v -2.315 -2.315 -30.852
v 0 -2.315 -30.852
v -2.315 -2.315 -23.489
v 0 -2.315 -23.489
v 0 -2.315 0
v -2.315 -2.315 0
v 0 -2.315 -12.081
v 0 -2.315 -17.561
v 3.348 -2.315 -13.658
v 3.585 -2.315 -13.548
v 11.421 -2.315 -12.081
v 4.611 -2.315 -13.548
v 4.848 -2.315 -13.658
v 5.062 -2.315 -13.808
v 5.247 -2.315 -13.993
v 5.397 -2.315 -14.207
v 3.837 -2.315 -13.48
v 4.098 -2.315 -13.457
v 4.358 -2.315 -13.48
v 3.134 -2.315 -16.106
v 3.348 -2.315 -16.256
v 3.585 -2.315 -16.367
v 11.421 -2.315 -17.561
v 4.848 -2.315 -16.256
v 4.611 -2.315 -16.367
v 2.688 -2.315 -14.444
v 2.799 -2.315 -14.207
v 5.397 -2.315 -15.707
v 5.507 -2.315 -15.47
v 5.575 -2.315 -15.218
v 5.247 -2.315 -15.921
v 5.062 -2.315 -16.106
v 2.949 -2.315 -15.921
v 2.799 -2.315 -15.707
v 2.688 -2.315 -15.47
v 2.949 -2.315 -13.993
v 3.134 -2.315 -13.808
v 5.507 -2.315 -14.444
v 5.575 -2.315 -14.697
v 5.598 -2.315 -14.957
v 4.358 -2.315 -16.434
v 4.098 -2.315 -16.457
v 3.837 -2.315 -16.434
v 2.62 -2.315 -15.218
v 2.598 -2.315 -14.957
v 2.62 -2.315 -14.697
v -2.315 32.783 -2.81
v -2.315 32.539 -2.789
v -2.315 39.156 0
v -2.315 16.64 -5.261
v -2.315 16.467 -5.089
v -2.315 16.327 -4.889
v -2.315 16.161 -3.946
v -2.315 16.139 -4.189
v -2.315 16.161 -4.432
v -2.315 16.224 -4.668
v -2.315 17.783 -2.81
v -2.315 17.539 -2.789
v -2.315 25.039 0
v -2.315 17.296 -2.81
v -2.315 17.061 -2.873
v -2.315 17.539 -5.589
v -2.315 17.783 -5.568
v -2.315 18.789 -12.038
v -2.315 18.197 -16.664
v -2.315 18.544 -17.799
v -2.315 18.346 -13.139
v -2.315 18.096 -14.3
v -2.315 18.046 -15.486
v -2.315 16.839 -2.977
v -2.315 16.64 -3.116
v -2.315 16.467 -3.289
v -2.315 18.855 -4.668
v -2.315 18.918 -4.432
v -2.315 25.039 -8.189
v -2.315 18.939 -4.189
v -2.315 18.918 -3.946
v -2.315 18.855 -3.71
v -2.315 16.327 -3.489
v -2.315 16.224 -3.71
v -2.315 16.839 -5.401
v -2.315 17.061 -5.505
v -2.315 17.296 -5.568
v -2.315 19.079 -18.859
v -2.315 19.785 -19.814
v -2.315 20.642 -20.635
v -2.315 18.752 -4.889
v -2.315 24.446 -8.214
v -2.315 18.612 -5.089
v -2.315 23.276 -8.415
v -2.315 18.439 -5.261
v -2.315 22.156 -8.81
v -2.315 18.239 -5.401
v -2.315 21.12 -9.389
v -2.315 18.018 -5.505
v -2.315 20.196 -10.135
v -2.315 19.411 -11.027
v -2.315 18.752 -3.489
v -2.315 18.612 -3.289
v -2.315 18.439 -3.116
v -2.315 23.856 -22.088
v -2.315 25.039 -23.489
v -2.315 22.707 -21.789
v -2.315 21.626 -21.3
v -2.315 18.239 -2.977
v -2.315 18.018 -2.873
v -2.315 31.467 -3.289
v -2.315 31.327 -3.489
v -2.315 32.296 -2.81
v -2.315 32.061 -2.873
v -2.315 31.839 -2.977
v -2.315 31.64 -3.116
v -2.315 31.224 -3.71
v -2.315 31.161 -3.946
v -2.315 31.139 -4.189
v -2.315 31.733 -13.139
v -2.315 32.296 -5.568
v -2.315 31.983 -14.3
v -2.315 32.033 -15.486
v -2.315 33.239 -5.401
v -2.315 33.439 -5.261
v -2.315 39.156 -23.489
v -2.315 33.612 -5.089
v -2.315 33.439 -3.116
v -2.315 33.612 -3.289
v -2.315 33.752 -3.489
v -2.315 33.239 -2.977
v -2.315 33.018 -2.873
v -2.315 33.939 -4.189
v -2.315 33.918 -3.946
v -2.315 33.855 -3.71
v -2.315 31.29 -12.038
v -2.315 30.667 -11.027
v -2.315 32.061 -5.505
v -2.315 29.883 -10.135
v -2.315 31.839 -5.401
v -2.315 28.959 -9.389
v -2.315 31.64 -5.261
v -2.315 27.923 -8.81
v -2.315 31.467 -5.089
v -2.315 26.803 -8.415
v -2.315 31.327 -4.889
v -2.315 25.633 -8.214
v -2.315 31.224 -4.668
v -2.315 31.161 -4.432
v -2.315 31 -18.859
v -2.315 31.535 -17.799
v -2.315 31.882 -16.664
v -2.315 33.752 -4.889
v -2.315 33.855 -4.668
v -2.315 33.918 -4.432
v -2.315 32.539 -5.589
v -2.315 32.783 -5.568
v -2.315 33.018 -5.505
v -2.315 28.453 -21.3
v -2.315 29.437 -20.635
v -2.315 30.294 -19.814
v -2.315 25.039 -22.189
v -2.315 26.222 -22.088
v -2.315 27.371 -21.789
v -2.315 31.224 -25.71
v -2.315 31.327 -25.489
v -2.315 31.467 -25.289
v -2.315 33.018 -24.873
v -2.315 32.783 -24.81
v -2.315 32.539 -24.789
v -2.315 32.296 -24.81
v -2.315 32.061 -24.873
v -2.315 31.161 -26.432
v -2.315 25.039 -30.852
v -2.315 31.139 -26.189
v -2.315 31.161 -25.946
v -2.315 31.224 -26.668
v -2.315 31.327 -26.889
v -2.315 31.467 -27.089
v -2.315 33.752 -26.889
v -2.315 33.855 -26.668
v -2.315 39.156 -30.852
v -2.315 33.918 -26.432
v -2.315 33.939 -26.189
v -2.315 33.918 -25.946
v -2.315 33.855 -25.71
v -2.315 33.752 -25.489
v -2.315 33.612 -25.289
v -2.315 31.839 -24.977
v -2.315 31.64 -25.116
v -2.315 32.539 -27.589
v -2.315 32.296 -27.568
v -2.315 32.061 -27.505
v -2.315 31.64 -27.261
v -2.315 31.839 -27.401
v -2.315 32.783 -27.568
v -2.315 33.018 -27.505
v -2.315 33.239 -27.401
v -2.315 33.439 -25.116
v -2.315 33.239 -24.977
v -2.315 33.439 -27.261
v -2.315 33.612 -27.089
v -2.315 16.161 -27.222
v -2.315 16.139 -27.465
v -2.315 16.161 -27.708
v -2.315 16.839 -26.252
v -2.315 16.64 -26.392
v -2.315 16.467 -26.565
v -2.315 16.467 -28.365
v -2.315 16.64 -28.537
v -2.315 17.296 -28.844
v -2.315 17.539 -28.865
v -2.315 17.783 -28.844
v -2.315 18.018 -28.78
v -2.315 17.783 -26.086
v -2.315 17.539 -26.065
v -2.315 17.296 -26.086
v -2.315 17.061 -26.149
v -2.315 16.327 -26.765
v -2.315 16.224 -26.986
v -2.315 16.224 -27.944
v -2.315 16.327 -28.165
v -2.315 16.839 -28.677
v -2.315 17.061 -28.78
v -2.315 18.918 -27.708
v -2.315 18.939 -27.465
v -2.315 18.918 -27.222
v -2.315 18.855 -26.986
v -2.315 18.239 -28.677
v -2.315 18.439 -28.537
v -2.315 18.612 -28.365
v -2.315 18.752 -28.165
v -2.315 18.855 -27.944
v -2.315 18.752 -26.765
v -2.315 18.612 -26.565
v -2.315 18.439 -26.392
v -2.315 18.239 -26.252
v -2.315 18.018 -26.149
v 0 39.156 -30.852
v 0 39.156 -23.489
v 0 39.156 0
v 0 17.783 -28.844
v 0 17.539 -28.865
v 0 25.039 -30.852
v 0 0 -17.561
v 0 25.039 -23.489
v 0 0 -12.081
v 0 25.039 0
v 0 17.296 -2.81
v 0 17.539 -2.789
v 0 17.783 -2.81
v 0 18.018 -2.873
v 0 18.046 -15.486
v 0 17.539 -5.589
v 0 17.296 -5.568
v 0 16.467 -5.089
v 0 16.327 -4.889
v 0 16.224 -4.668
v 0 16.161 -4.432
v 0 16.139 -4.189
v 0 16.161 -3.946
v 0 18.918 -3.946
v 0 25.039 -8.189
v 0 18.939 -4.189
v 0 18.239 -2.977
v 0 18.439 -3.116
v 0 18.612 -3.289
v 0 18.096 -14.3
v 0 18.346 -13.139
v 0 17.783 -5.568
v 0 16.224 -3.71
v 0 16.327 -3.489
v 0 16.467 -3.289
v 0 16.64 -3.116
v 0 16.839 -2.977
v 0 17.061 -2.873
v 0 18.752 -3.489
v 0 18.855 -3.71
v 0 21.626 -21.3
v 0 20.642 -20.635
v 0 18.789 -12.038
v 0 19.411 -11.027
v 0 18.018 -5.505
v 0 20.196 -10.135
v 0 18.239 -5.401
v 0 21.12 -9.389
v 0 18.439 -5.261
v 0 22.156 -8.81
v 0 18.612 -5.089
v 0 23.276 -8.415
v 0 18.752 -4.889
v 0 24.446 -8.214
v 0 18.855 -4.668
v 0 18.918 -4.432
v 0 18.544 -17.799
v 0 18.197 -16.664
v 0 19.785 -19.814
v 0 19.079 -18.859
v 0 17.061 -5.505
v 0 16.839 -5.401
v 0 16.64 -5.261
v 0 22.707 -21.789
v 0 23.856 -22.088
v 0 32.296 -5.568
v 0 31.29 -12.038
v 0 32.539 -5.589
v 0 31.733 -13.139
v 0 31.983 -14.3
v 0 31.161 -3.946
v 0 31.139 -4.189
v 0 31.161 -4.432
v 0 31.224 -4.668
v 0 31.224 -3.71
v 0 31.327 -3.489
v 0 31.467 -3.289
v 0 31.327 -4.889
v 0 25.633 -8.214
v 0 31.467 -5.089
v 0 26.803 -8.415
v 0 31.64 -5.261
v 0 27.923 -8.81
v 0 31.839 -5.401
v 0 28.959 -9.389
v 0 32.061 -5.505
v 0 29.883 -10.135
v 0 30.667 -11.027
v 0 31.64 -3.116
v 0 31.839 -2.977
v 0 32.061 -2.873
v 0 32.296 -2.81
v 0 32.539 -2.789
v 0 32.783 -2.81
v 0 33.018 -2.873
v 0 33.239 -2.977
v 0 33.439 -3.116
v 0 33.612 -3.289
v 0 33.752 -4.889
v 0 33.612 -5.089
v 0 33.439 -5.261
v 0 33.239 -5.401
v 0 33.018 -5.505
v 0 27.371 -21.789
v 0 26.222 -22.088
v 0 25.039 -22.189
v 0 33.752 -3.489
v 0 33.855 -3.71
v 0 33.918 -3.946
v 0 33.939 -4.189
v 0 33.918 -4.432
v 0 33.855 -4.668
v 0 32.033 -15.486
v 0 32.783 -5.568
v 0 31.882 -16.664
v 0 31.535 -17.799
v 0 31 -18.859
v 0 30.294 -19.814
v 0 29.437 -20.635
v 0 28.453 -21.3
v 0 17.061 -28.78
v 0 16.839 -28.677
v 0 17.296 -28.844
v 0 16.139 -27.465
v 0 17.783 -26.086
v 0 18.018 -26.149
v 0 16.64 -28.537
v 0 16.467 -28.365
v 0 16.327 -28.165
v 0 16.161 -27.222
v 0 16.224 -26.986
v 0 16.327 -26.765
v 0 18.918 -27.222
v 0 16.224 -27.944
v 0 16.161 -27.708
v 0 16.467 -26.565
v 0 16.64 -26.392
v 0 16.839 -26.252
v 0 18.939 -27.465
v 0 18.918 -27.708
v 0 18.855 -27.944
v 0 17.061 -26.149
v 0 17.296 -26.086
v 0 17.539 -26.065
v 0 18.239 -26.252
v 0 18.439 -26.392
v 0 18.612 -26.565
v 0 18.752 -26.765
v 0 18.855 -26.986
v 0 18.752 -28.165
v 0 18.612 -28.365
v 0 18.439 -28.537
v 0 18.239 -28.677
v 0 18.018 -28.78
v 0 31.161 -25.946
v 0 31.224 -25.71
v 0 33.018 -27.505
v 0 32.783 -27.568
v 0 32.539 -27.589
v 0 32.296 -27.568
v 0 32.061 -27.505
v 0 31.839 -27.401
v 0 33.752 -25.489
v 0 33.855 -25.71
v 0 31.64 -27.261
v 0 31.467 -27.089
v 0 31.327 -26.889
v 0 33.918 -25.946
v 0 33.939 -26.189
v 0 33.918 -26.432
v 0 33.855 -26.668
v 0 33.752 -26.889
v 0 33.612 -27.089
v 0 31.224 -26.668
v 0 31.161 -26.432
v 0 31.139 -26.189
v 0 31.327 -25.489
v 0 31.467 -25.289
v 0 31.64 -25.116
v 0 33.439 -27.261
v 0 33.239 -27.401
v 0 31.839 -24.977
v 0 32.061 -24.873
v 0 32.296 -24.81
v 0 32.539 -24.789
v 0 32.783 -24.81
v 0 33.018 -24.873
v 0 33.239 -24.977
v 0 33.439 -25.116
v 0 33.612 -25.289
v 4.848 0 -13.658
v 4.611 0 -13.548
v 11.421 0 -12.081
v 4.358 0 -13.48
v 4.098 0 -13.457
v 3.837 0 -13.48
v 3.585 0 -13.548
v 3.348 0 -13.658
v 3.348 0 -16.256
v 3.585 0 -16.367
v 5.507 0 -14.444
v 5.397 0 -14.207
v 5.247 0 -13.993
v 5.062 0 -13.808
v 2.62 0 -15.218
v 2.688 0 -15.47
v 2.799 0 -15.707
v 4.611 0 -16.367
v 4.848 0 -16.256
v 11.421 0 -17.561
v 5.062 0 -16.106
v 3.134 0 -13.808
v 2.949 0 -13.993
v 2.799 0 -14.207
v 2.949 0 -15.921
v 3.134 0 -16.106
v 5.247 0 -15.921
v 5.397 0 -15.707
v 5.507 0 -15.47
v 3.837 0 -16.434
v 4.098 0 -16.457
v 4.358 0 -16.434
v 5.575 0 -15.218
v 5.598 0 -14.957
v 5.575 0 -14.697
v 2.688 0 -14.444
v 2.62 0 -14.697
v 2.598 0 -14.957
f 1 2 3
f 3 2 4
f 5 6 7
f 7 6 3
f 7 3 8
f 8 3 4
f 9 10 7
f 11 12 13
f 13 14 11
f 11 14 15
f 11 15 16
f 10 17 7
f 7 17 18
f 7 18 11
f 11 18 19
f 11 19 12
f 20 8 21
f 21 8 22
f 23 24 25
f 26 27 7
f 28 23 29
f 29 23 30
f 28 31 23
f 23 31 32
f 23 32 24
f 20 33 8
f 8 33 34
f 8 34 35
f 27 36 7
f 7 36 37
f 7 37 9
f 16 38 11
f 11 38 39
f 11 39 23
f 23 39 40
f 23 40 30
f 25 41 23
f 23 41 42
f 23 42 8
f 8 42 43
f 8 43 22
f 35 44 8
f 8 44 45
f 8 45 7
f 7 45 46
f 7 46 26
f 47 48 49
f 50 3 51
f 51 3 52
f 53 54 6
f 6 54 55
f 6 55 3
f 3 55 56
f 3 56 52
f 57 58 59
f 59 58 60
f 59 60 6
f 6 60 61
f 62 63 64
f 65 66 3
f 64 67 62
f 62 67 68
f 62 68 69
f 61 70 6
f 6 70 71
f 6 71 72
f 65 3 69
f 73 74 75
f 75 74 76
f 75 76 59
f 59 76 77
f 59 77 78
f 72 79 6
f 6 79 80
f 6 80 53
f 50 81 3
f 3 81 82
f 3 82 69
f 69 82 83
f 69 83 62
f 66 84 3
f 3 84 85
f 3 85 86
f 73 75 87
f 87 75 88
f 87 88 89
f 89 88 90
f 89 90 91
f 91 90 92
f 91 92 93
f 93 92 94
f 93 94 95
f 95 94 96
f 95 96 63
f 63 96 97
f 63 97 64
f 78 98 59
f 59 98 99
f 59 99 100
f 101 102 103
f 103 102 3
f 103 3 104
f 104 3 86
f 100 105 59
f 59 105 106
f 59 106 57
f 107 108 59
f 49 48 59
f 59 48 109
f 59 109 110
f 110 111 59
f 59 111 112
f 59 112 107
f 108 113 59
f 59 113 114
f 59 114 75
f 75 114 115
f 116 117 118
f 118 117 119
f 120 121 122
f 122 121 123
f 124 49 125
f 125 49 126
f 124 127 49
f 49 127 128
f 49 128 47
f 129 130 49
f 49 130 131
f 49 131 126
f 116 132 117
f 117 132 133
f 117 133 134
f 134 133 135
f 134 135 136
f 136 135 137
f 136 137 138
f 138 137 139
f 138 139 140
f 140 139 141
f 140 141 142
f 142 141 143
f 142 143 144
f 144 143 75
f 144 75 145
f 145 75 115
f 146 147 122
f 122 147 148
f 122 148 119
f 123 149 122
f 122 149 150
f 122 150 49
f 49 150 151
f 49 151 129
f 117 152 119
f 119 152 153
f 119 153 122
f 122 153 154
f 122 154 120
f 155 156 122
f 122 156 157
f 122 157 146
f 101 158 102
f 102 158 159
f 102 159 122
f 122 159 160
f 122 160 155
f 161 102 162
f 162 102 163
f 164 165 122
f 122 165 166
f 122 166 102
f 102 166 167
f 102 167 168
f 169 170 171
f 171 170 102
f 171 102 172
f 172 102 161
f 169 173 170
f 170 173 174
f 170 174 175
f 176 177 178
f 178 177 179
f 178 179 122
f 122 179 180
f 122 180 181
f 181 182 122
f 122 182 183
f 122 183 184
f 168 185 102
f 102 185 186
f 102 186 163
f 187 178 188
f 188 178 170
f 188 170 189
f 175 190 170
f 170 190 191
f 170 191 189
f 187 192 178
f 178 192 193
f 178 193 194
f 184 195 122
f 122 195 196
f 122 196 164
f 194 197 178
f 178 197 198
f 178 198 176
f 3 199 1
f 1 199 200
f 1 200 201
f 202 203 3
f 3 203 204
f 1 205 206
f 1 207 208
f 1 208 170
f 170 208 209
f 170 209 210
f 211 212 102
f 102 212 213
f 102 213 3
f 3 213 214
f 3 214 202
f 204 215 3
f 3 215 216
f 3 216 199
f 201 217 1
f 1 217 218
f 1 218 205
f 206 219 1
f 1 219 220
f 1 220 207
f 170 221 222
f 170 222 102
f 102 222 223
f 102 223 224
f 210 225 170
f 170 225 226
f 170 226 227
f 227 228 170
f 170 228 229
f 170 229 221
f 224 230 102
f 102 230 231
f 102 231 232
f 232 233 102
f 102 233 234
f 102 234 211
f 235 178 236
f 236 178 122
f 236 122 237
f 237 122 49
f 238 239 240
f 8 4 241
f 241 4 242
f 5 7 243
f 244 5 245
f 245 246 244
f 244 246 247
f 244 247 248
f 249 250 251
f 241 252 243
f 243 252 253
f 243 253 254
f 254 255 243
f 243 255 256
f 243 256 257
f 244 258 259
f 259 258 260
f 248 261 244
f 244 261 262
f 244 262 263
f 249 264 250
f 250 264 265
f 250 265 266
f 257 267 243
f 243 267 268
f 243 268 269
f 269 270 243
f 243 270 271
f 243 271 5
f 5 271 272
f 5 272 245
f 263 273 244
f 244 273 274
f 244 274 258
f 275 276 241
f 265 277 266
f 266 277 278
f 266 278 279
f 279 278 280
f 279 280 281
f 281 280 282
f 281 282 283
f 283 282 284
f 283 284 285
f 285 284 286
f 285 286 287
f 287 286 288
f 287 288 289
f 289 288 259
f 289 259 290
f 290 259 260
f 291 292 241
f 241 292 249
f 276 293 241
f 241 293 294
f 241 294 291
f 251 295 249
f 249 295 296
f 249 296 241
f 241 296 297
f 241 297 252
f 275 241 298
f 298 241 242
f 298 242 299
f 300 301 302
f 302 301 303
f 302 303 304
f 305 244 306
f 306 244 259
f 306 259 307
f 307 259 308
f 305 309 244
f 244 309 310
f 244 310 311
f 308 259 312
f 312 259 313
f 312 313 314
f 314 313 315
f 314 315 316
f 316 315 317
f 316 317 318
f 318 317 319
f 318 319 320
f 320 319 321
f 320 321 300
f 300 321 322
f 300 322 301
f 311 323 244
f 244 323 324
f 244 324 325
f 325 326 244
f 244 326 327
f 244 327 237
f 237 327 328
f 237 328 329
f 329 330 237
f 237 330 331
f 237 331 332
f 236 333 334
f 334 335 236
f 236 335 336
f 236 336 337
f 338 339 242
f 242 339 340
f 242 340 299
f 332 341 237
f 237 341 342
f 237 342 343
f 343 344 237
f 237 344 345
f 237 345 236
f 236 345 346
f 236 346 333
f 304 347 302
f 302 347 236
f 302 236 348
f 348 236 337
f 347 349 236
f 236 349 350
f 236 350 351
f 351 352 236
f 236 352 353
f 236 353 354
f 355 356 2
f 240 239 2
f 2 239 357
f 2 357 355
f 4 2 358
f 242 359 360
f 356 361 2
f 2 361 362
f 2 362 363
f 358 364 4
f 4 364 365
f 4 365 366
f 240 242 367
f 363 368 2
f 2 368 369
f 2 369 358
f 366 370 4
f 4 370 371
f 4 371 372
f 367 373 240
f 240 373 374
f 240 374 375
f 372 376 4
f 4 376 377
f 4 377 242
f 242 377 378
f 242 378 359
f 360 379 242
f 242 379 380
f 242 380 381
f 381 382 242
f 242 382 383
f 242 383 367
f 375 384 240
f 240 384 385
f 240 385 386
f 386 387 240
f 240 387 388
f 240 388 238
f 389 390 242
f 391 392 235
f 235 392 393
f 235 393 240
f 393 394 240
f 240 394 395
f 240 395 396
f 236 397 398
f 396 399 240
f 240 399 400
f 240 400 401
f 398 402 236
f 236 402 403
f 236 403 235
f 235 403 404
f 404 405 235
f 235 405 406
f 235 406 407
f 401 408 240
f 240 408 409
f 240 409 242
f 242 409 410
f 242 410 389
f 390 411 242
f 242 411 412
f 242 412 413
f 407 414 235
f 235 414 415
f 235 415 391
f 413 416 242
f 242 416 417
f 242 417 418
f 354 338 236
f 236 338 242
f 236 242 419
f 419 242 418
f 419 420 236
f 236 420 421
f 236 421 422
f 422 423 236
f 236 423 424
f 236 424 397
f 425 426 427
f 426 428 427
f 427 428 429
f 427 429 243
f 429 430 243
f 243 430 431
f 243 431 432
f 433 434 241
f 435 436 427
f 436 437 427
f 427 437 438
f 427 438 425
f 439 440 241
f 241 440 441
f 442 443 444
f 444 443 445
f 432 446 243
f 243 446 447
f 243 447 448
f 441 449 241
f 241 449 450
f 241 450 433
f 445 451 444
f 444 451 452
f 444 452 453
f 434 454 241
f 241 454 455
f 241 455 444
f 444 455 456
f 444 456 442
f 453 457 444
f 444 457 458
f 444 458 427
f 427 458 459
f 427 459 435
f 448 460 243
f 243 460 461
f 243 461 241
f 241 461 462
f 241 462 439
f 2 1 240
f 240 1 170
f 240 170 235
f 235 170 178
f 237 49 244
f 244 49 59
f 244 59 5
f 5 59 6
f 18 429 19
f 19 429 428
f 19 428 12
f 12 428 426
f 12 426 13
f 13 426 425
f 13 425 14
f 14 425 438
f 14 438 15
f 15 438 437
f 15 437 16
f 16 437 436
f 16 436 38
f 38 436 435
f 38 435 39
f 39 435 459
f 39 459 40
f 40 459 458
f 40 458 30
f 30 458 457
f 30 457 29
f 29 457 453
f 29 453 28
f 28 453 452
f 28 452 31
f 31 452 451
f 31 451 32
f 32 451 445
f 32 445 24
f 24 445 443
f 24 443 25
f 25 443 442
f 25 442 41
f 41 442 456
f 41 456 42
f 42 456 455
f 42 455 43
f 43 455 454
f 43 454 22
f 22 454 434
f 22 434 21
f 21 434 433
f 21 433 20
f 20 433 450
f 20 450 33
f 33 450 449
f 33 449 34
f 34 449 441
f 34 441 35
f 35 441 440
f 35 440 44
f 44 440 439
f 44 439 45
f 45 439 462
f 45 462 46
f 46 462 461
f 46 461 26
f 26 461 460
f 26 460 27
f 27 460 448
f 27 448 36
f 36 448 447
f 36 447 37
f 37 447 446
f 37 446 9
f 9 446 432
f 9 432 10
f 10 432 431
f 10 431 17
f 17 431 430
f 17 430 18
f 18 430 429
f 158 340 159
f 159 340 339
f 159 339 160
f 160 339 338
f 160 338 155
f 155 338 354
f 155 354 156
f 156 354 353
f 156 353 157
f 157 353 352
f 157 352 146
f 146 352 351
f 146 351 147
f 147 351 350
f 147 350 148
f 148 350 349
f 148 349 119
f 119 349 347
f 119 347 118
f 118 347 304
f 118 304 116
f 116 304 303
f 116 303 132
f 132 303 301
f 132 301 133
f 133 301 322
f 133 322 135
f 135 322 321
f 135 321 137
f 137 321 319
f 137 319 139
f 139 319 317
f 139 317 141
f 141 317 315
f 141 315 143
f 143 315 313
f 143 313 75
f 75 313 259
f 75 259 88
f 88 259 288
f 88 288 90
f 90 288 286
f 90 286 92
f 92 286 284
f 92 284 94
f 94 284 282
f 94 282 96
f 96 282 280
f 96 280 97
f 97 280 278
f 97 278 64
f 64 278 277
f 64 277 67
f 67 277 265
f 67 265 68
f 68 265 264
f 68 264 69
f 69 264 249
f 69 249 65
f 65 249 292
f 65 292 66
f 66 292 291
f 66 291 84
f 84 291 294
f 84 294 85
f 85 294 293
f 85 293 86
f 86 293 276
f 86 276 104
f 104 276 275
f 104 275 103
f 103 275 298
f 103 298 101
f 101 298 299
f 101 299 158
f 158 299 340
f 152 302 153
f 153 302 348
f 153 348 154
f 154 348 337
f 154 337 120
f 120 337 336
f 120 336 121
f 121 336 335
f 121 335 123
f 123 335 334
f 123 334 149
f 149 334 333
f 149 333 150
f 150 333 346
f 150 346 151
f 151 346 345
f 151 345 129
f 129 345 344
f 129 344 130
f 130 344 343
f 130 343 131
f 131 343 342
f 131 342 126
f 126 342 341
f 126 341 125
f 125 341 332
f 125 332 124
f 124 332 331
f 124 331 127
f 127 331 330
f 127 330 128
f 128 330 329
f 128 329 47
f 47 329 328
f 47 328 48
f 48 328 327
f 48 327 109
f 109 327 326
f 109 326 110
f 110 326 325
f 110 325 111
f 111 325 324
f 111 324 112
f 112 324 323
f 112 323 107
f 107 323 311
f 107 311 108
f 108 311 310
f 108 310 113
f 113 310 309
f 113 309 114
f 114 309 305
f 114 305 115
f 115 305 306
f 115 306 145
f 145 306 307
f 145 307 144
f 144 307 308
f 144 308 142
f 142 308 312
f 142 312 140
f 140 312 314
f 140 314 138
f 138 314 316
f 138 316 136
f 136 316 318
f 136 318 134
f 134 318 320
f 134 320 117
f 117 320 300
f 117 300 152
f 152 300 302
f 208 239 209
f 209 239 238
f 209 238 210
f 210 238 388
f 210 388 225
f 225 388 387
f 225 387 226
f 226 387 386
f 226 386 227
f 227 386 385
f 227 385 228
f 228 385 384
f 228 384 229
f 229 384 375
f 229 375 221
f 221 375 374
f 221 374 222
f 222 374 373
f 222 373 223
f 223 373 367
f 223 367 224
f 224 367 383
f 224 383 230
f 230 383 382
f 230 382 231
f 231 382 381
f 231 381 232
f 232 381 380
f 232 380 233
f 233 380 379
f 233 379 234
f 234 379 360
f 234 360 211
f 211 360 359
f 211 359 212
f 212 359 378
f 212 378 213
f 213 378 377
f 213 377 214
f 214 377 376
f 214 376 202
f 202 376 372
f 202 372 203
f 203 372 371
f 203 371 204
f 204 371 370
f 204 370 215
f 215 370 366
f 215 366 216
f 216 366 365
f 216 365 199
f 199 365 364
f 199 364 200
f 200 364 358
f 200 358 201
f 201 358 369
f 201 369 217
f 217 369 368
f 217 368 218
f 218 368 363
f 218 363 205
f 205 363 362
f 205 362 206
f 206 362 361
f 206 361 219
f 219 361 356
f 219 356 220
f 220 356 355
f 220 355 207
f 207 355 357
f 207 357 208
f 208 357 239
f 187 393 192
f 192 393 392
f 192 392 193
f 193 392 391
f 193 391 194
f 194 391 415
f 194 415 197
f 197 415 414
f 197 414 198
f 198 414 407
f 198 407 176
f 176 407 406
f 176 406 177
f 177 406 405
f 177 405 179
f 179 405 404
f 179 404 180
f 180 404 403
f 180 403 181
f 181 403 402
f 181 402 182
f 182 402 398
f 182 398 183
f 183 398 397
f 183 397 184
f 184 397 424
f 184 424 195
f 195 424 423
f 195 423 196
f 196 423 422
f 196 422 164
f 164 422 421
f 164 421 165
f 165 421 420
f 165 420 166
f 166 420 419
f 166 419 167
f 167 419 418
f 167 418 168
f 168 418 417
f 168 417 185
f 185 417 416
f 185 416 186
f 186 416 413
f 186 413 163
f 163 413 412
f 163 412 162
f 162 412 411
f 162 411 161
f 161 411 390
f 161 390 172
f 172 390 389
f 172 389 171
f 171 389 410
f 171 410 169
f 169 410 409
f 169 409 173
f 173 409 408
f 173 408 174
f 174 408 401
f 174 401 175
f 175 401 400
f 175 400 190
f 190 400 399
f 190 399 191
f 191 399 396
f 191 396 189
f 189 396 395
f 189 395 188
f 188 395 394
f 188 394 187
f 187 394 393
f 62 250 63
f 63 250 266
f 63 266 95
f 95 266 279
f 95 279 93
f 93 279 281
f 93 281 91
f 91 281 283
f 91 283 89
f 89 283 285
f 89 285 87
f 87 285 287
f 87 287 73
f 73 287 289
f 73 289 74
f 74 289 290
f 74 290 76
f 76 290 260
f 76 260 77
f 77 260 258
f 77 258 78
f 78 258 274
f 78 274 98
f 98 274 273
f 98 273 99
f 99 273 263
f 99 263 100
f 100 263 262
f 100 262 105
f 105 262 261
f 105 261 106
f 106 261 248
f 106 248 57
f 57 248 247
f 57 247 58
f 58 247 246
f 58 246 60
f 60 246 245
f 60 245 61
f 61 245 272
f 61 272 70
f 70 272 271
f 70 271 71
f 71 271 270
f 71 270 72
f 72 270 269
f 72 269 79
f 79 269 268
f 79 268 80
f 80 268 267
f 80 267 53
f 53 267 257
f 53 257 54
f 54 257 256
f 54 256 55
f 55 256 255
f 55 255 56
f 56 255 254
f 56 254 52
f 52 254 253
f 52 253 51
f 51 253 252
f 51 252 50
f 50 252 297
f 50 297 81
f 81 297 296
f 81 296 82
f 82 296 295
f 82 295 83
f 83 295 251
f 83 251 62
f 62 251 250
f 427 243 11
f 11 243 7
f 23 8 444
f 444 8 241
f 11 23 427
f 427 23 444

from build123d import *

# Parameters (mm, degrees)
EXTRUDE_THIN2_DEPTH = 30.852042279
SKETCH2_R           = 1.5
CUT_EXTRUDE1_DEPTH  = 53.491563016
SKETCH4_R           = 7
CUT_EXTRUDE3_DEPTH  = 53.491563016
SKETCH6_R           = 1.4
CUT_EXTRUDE5_DEPTH  = 53.491563016
SKETCH7_W           = 16.44057734
SKETCH7_H           = 12.081190297
SKETCH7_H_2         = 13.290689101
CUT_EXTRUDE6_DEPTH  = 53.491563016
SKETCH8_W           = 5.019650722
SKETCH8_H           = 5.480162881
CUT_EXTRUDE7_DEPTH  = 53.491563016


with BuildPart() as part:
    # Sketch1 → Extrude-Thin2 (new body)
    with BuildSketch(Plane.XY):
        Polygon((16.44057734, 0), (0, 0), (0, 39.156392732), (-2.315200758, 39.156392732), (-2.315200758, -2.315200758), (16.44057734, -2.315200758), align=None)
    extrude(amount=-EXTRUDE_THIN2_DEPTH)

    # Sketch2 → Cut-Extrude1 (cut, through all)
    with BuildSketch(Plane(origin=(0, 0, 0), x_dir=(1, 0, 0), z_dir=(0, 1, 0))):
        with Locations(Location((4.097708223, 14.957133601, 0), (0, 0, 270))):
            Circle(SKETCH2_R)
    extrude(amount=-CUT_EXTRUDE1_DEPTH, mode=Mode.SUBTRACT)

    # Sketch4 → Cut-Extrude3 (cut, through all)
    with BuildSketch(Plane(origin=(0, 0, 0), x_dir=(0, 0, -1), z_dir=(1, 0, 0))):
        with Locations((15.188954452, 25.039458811)):
            Circle(SKETCH4_R)
    extrude(amount=-CUT_EXTRUDE3_DEPTH, mode=Mode.SUBTRACT)

    # Sketch6 → Cut-Extrude5 (cut, through all)
    with BuildSketch(Plane(origin=(0, 0, 0), x_dir=(0, 0, -1), z_dir=(1, 0, 0))):
        with Locations((4.188954452, 32.539458811)):
            Circle(SKETCH6_R)
        with Locations((4.188954452, 17.539458811)):
            Circle(SKETCH6_R)
        with Locations((26.188954452, 32.539458811)):
            Circle(SKETCH6_R)
        with Locations((27.46487917, 17.539458811)):
            Circle(SKETCH6_R)
    extrude(amount=-CUT_EXTRUDE5_DEPTH, mode=Mode.SUBTRACT)

    # Sketch7 → Cut-Extrude6 (cut, through all)
    with BuildSketch(Plane(origin=(0, 0, 0), x_dir=(1, 0, 0), z_dir=(0, 1, 0))):
        with Locations((8.22028867, 6.040595149)):
            Rectangle(SKETCH7_W, SKETCH7_H)
        with Locations((8.22028867, 24.206697729)):
            Rectangle(SKETCH7_W, SKETCH7_H_2)
    extrude(amount=-CUT_EXTRUDE6_DEPTH, mode=Mode.SUBTRACT)

    # Sketch8 → Cut-Extrude7 (cut, through all)
    with BuildSketch(Plane(origin=(0, 0, 0), x_dir=(1, 0, 0), z_dir=(0, 1, 0))):
        with Locations((13.930751979, 14.821271738)):
            Rectangle(SKETCH8_W, SKETCH8_H)
    extrude(amount=-CUT_EXTRUDE7_DEPTH, mode=Mode.SUBTRACT)


solid = part.part
